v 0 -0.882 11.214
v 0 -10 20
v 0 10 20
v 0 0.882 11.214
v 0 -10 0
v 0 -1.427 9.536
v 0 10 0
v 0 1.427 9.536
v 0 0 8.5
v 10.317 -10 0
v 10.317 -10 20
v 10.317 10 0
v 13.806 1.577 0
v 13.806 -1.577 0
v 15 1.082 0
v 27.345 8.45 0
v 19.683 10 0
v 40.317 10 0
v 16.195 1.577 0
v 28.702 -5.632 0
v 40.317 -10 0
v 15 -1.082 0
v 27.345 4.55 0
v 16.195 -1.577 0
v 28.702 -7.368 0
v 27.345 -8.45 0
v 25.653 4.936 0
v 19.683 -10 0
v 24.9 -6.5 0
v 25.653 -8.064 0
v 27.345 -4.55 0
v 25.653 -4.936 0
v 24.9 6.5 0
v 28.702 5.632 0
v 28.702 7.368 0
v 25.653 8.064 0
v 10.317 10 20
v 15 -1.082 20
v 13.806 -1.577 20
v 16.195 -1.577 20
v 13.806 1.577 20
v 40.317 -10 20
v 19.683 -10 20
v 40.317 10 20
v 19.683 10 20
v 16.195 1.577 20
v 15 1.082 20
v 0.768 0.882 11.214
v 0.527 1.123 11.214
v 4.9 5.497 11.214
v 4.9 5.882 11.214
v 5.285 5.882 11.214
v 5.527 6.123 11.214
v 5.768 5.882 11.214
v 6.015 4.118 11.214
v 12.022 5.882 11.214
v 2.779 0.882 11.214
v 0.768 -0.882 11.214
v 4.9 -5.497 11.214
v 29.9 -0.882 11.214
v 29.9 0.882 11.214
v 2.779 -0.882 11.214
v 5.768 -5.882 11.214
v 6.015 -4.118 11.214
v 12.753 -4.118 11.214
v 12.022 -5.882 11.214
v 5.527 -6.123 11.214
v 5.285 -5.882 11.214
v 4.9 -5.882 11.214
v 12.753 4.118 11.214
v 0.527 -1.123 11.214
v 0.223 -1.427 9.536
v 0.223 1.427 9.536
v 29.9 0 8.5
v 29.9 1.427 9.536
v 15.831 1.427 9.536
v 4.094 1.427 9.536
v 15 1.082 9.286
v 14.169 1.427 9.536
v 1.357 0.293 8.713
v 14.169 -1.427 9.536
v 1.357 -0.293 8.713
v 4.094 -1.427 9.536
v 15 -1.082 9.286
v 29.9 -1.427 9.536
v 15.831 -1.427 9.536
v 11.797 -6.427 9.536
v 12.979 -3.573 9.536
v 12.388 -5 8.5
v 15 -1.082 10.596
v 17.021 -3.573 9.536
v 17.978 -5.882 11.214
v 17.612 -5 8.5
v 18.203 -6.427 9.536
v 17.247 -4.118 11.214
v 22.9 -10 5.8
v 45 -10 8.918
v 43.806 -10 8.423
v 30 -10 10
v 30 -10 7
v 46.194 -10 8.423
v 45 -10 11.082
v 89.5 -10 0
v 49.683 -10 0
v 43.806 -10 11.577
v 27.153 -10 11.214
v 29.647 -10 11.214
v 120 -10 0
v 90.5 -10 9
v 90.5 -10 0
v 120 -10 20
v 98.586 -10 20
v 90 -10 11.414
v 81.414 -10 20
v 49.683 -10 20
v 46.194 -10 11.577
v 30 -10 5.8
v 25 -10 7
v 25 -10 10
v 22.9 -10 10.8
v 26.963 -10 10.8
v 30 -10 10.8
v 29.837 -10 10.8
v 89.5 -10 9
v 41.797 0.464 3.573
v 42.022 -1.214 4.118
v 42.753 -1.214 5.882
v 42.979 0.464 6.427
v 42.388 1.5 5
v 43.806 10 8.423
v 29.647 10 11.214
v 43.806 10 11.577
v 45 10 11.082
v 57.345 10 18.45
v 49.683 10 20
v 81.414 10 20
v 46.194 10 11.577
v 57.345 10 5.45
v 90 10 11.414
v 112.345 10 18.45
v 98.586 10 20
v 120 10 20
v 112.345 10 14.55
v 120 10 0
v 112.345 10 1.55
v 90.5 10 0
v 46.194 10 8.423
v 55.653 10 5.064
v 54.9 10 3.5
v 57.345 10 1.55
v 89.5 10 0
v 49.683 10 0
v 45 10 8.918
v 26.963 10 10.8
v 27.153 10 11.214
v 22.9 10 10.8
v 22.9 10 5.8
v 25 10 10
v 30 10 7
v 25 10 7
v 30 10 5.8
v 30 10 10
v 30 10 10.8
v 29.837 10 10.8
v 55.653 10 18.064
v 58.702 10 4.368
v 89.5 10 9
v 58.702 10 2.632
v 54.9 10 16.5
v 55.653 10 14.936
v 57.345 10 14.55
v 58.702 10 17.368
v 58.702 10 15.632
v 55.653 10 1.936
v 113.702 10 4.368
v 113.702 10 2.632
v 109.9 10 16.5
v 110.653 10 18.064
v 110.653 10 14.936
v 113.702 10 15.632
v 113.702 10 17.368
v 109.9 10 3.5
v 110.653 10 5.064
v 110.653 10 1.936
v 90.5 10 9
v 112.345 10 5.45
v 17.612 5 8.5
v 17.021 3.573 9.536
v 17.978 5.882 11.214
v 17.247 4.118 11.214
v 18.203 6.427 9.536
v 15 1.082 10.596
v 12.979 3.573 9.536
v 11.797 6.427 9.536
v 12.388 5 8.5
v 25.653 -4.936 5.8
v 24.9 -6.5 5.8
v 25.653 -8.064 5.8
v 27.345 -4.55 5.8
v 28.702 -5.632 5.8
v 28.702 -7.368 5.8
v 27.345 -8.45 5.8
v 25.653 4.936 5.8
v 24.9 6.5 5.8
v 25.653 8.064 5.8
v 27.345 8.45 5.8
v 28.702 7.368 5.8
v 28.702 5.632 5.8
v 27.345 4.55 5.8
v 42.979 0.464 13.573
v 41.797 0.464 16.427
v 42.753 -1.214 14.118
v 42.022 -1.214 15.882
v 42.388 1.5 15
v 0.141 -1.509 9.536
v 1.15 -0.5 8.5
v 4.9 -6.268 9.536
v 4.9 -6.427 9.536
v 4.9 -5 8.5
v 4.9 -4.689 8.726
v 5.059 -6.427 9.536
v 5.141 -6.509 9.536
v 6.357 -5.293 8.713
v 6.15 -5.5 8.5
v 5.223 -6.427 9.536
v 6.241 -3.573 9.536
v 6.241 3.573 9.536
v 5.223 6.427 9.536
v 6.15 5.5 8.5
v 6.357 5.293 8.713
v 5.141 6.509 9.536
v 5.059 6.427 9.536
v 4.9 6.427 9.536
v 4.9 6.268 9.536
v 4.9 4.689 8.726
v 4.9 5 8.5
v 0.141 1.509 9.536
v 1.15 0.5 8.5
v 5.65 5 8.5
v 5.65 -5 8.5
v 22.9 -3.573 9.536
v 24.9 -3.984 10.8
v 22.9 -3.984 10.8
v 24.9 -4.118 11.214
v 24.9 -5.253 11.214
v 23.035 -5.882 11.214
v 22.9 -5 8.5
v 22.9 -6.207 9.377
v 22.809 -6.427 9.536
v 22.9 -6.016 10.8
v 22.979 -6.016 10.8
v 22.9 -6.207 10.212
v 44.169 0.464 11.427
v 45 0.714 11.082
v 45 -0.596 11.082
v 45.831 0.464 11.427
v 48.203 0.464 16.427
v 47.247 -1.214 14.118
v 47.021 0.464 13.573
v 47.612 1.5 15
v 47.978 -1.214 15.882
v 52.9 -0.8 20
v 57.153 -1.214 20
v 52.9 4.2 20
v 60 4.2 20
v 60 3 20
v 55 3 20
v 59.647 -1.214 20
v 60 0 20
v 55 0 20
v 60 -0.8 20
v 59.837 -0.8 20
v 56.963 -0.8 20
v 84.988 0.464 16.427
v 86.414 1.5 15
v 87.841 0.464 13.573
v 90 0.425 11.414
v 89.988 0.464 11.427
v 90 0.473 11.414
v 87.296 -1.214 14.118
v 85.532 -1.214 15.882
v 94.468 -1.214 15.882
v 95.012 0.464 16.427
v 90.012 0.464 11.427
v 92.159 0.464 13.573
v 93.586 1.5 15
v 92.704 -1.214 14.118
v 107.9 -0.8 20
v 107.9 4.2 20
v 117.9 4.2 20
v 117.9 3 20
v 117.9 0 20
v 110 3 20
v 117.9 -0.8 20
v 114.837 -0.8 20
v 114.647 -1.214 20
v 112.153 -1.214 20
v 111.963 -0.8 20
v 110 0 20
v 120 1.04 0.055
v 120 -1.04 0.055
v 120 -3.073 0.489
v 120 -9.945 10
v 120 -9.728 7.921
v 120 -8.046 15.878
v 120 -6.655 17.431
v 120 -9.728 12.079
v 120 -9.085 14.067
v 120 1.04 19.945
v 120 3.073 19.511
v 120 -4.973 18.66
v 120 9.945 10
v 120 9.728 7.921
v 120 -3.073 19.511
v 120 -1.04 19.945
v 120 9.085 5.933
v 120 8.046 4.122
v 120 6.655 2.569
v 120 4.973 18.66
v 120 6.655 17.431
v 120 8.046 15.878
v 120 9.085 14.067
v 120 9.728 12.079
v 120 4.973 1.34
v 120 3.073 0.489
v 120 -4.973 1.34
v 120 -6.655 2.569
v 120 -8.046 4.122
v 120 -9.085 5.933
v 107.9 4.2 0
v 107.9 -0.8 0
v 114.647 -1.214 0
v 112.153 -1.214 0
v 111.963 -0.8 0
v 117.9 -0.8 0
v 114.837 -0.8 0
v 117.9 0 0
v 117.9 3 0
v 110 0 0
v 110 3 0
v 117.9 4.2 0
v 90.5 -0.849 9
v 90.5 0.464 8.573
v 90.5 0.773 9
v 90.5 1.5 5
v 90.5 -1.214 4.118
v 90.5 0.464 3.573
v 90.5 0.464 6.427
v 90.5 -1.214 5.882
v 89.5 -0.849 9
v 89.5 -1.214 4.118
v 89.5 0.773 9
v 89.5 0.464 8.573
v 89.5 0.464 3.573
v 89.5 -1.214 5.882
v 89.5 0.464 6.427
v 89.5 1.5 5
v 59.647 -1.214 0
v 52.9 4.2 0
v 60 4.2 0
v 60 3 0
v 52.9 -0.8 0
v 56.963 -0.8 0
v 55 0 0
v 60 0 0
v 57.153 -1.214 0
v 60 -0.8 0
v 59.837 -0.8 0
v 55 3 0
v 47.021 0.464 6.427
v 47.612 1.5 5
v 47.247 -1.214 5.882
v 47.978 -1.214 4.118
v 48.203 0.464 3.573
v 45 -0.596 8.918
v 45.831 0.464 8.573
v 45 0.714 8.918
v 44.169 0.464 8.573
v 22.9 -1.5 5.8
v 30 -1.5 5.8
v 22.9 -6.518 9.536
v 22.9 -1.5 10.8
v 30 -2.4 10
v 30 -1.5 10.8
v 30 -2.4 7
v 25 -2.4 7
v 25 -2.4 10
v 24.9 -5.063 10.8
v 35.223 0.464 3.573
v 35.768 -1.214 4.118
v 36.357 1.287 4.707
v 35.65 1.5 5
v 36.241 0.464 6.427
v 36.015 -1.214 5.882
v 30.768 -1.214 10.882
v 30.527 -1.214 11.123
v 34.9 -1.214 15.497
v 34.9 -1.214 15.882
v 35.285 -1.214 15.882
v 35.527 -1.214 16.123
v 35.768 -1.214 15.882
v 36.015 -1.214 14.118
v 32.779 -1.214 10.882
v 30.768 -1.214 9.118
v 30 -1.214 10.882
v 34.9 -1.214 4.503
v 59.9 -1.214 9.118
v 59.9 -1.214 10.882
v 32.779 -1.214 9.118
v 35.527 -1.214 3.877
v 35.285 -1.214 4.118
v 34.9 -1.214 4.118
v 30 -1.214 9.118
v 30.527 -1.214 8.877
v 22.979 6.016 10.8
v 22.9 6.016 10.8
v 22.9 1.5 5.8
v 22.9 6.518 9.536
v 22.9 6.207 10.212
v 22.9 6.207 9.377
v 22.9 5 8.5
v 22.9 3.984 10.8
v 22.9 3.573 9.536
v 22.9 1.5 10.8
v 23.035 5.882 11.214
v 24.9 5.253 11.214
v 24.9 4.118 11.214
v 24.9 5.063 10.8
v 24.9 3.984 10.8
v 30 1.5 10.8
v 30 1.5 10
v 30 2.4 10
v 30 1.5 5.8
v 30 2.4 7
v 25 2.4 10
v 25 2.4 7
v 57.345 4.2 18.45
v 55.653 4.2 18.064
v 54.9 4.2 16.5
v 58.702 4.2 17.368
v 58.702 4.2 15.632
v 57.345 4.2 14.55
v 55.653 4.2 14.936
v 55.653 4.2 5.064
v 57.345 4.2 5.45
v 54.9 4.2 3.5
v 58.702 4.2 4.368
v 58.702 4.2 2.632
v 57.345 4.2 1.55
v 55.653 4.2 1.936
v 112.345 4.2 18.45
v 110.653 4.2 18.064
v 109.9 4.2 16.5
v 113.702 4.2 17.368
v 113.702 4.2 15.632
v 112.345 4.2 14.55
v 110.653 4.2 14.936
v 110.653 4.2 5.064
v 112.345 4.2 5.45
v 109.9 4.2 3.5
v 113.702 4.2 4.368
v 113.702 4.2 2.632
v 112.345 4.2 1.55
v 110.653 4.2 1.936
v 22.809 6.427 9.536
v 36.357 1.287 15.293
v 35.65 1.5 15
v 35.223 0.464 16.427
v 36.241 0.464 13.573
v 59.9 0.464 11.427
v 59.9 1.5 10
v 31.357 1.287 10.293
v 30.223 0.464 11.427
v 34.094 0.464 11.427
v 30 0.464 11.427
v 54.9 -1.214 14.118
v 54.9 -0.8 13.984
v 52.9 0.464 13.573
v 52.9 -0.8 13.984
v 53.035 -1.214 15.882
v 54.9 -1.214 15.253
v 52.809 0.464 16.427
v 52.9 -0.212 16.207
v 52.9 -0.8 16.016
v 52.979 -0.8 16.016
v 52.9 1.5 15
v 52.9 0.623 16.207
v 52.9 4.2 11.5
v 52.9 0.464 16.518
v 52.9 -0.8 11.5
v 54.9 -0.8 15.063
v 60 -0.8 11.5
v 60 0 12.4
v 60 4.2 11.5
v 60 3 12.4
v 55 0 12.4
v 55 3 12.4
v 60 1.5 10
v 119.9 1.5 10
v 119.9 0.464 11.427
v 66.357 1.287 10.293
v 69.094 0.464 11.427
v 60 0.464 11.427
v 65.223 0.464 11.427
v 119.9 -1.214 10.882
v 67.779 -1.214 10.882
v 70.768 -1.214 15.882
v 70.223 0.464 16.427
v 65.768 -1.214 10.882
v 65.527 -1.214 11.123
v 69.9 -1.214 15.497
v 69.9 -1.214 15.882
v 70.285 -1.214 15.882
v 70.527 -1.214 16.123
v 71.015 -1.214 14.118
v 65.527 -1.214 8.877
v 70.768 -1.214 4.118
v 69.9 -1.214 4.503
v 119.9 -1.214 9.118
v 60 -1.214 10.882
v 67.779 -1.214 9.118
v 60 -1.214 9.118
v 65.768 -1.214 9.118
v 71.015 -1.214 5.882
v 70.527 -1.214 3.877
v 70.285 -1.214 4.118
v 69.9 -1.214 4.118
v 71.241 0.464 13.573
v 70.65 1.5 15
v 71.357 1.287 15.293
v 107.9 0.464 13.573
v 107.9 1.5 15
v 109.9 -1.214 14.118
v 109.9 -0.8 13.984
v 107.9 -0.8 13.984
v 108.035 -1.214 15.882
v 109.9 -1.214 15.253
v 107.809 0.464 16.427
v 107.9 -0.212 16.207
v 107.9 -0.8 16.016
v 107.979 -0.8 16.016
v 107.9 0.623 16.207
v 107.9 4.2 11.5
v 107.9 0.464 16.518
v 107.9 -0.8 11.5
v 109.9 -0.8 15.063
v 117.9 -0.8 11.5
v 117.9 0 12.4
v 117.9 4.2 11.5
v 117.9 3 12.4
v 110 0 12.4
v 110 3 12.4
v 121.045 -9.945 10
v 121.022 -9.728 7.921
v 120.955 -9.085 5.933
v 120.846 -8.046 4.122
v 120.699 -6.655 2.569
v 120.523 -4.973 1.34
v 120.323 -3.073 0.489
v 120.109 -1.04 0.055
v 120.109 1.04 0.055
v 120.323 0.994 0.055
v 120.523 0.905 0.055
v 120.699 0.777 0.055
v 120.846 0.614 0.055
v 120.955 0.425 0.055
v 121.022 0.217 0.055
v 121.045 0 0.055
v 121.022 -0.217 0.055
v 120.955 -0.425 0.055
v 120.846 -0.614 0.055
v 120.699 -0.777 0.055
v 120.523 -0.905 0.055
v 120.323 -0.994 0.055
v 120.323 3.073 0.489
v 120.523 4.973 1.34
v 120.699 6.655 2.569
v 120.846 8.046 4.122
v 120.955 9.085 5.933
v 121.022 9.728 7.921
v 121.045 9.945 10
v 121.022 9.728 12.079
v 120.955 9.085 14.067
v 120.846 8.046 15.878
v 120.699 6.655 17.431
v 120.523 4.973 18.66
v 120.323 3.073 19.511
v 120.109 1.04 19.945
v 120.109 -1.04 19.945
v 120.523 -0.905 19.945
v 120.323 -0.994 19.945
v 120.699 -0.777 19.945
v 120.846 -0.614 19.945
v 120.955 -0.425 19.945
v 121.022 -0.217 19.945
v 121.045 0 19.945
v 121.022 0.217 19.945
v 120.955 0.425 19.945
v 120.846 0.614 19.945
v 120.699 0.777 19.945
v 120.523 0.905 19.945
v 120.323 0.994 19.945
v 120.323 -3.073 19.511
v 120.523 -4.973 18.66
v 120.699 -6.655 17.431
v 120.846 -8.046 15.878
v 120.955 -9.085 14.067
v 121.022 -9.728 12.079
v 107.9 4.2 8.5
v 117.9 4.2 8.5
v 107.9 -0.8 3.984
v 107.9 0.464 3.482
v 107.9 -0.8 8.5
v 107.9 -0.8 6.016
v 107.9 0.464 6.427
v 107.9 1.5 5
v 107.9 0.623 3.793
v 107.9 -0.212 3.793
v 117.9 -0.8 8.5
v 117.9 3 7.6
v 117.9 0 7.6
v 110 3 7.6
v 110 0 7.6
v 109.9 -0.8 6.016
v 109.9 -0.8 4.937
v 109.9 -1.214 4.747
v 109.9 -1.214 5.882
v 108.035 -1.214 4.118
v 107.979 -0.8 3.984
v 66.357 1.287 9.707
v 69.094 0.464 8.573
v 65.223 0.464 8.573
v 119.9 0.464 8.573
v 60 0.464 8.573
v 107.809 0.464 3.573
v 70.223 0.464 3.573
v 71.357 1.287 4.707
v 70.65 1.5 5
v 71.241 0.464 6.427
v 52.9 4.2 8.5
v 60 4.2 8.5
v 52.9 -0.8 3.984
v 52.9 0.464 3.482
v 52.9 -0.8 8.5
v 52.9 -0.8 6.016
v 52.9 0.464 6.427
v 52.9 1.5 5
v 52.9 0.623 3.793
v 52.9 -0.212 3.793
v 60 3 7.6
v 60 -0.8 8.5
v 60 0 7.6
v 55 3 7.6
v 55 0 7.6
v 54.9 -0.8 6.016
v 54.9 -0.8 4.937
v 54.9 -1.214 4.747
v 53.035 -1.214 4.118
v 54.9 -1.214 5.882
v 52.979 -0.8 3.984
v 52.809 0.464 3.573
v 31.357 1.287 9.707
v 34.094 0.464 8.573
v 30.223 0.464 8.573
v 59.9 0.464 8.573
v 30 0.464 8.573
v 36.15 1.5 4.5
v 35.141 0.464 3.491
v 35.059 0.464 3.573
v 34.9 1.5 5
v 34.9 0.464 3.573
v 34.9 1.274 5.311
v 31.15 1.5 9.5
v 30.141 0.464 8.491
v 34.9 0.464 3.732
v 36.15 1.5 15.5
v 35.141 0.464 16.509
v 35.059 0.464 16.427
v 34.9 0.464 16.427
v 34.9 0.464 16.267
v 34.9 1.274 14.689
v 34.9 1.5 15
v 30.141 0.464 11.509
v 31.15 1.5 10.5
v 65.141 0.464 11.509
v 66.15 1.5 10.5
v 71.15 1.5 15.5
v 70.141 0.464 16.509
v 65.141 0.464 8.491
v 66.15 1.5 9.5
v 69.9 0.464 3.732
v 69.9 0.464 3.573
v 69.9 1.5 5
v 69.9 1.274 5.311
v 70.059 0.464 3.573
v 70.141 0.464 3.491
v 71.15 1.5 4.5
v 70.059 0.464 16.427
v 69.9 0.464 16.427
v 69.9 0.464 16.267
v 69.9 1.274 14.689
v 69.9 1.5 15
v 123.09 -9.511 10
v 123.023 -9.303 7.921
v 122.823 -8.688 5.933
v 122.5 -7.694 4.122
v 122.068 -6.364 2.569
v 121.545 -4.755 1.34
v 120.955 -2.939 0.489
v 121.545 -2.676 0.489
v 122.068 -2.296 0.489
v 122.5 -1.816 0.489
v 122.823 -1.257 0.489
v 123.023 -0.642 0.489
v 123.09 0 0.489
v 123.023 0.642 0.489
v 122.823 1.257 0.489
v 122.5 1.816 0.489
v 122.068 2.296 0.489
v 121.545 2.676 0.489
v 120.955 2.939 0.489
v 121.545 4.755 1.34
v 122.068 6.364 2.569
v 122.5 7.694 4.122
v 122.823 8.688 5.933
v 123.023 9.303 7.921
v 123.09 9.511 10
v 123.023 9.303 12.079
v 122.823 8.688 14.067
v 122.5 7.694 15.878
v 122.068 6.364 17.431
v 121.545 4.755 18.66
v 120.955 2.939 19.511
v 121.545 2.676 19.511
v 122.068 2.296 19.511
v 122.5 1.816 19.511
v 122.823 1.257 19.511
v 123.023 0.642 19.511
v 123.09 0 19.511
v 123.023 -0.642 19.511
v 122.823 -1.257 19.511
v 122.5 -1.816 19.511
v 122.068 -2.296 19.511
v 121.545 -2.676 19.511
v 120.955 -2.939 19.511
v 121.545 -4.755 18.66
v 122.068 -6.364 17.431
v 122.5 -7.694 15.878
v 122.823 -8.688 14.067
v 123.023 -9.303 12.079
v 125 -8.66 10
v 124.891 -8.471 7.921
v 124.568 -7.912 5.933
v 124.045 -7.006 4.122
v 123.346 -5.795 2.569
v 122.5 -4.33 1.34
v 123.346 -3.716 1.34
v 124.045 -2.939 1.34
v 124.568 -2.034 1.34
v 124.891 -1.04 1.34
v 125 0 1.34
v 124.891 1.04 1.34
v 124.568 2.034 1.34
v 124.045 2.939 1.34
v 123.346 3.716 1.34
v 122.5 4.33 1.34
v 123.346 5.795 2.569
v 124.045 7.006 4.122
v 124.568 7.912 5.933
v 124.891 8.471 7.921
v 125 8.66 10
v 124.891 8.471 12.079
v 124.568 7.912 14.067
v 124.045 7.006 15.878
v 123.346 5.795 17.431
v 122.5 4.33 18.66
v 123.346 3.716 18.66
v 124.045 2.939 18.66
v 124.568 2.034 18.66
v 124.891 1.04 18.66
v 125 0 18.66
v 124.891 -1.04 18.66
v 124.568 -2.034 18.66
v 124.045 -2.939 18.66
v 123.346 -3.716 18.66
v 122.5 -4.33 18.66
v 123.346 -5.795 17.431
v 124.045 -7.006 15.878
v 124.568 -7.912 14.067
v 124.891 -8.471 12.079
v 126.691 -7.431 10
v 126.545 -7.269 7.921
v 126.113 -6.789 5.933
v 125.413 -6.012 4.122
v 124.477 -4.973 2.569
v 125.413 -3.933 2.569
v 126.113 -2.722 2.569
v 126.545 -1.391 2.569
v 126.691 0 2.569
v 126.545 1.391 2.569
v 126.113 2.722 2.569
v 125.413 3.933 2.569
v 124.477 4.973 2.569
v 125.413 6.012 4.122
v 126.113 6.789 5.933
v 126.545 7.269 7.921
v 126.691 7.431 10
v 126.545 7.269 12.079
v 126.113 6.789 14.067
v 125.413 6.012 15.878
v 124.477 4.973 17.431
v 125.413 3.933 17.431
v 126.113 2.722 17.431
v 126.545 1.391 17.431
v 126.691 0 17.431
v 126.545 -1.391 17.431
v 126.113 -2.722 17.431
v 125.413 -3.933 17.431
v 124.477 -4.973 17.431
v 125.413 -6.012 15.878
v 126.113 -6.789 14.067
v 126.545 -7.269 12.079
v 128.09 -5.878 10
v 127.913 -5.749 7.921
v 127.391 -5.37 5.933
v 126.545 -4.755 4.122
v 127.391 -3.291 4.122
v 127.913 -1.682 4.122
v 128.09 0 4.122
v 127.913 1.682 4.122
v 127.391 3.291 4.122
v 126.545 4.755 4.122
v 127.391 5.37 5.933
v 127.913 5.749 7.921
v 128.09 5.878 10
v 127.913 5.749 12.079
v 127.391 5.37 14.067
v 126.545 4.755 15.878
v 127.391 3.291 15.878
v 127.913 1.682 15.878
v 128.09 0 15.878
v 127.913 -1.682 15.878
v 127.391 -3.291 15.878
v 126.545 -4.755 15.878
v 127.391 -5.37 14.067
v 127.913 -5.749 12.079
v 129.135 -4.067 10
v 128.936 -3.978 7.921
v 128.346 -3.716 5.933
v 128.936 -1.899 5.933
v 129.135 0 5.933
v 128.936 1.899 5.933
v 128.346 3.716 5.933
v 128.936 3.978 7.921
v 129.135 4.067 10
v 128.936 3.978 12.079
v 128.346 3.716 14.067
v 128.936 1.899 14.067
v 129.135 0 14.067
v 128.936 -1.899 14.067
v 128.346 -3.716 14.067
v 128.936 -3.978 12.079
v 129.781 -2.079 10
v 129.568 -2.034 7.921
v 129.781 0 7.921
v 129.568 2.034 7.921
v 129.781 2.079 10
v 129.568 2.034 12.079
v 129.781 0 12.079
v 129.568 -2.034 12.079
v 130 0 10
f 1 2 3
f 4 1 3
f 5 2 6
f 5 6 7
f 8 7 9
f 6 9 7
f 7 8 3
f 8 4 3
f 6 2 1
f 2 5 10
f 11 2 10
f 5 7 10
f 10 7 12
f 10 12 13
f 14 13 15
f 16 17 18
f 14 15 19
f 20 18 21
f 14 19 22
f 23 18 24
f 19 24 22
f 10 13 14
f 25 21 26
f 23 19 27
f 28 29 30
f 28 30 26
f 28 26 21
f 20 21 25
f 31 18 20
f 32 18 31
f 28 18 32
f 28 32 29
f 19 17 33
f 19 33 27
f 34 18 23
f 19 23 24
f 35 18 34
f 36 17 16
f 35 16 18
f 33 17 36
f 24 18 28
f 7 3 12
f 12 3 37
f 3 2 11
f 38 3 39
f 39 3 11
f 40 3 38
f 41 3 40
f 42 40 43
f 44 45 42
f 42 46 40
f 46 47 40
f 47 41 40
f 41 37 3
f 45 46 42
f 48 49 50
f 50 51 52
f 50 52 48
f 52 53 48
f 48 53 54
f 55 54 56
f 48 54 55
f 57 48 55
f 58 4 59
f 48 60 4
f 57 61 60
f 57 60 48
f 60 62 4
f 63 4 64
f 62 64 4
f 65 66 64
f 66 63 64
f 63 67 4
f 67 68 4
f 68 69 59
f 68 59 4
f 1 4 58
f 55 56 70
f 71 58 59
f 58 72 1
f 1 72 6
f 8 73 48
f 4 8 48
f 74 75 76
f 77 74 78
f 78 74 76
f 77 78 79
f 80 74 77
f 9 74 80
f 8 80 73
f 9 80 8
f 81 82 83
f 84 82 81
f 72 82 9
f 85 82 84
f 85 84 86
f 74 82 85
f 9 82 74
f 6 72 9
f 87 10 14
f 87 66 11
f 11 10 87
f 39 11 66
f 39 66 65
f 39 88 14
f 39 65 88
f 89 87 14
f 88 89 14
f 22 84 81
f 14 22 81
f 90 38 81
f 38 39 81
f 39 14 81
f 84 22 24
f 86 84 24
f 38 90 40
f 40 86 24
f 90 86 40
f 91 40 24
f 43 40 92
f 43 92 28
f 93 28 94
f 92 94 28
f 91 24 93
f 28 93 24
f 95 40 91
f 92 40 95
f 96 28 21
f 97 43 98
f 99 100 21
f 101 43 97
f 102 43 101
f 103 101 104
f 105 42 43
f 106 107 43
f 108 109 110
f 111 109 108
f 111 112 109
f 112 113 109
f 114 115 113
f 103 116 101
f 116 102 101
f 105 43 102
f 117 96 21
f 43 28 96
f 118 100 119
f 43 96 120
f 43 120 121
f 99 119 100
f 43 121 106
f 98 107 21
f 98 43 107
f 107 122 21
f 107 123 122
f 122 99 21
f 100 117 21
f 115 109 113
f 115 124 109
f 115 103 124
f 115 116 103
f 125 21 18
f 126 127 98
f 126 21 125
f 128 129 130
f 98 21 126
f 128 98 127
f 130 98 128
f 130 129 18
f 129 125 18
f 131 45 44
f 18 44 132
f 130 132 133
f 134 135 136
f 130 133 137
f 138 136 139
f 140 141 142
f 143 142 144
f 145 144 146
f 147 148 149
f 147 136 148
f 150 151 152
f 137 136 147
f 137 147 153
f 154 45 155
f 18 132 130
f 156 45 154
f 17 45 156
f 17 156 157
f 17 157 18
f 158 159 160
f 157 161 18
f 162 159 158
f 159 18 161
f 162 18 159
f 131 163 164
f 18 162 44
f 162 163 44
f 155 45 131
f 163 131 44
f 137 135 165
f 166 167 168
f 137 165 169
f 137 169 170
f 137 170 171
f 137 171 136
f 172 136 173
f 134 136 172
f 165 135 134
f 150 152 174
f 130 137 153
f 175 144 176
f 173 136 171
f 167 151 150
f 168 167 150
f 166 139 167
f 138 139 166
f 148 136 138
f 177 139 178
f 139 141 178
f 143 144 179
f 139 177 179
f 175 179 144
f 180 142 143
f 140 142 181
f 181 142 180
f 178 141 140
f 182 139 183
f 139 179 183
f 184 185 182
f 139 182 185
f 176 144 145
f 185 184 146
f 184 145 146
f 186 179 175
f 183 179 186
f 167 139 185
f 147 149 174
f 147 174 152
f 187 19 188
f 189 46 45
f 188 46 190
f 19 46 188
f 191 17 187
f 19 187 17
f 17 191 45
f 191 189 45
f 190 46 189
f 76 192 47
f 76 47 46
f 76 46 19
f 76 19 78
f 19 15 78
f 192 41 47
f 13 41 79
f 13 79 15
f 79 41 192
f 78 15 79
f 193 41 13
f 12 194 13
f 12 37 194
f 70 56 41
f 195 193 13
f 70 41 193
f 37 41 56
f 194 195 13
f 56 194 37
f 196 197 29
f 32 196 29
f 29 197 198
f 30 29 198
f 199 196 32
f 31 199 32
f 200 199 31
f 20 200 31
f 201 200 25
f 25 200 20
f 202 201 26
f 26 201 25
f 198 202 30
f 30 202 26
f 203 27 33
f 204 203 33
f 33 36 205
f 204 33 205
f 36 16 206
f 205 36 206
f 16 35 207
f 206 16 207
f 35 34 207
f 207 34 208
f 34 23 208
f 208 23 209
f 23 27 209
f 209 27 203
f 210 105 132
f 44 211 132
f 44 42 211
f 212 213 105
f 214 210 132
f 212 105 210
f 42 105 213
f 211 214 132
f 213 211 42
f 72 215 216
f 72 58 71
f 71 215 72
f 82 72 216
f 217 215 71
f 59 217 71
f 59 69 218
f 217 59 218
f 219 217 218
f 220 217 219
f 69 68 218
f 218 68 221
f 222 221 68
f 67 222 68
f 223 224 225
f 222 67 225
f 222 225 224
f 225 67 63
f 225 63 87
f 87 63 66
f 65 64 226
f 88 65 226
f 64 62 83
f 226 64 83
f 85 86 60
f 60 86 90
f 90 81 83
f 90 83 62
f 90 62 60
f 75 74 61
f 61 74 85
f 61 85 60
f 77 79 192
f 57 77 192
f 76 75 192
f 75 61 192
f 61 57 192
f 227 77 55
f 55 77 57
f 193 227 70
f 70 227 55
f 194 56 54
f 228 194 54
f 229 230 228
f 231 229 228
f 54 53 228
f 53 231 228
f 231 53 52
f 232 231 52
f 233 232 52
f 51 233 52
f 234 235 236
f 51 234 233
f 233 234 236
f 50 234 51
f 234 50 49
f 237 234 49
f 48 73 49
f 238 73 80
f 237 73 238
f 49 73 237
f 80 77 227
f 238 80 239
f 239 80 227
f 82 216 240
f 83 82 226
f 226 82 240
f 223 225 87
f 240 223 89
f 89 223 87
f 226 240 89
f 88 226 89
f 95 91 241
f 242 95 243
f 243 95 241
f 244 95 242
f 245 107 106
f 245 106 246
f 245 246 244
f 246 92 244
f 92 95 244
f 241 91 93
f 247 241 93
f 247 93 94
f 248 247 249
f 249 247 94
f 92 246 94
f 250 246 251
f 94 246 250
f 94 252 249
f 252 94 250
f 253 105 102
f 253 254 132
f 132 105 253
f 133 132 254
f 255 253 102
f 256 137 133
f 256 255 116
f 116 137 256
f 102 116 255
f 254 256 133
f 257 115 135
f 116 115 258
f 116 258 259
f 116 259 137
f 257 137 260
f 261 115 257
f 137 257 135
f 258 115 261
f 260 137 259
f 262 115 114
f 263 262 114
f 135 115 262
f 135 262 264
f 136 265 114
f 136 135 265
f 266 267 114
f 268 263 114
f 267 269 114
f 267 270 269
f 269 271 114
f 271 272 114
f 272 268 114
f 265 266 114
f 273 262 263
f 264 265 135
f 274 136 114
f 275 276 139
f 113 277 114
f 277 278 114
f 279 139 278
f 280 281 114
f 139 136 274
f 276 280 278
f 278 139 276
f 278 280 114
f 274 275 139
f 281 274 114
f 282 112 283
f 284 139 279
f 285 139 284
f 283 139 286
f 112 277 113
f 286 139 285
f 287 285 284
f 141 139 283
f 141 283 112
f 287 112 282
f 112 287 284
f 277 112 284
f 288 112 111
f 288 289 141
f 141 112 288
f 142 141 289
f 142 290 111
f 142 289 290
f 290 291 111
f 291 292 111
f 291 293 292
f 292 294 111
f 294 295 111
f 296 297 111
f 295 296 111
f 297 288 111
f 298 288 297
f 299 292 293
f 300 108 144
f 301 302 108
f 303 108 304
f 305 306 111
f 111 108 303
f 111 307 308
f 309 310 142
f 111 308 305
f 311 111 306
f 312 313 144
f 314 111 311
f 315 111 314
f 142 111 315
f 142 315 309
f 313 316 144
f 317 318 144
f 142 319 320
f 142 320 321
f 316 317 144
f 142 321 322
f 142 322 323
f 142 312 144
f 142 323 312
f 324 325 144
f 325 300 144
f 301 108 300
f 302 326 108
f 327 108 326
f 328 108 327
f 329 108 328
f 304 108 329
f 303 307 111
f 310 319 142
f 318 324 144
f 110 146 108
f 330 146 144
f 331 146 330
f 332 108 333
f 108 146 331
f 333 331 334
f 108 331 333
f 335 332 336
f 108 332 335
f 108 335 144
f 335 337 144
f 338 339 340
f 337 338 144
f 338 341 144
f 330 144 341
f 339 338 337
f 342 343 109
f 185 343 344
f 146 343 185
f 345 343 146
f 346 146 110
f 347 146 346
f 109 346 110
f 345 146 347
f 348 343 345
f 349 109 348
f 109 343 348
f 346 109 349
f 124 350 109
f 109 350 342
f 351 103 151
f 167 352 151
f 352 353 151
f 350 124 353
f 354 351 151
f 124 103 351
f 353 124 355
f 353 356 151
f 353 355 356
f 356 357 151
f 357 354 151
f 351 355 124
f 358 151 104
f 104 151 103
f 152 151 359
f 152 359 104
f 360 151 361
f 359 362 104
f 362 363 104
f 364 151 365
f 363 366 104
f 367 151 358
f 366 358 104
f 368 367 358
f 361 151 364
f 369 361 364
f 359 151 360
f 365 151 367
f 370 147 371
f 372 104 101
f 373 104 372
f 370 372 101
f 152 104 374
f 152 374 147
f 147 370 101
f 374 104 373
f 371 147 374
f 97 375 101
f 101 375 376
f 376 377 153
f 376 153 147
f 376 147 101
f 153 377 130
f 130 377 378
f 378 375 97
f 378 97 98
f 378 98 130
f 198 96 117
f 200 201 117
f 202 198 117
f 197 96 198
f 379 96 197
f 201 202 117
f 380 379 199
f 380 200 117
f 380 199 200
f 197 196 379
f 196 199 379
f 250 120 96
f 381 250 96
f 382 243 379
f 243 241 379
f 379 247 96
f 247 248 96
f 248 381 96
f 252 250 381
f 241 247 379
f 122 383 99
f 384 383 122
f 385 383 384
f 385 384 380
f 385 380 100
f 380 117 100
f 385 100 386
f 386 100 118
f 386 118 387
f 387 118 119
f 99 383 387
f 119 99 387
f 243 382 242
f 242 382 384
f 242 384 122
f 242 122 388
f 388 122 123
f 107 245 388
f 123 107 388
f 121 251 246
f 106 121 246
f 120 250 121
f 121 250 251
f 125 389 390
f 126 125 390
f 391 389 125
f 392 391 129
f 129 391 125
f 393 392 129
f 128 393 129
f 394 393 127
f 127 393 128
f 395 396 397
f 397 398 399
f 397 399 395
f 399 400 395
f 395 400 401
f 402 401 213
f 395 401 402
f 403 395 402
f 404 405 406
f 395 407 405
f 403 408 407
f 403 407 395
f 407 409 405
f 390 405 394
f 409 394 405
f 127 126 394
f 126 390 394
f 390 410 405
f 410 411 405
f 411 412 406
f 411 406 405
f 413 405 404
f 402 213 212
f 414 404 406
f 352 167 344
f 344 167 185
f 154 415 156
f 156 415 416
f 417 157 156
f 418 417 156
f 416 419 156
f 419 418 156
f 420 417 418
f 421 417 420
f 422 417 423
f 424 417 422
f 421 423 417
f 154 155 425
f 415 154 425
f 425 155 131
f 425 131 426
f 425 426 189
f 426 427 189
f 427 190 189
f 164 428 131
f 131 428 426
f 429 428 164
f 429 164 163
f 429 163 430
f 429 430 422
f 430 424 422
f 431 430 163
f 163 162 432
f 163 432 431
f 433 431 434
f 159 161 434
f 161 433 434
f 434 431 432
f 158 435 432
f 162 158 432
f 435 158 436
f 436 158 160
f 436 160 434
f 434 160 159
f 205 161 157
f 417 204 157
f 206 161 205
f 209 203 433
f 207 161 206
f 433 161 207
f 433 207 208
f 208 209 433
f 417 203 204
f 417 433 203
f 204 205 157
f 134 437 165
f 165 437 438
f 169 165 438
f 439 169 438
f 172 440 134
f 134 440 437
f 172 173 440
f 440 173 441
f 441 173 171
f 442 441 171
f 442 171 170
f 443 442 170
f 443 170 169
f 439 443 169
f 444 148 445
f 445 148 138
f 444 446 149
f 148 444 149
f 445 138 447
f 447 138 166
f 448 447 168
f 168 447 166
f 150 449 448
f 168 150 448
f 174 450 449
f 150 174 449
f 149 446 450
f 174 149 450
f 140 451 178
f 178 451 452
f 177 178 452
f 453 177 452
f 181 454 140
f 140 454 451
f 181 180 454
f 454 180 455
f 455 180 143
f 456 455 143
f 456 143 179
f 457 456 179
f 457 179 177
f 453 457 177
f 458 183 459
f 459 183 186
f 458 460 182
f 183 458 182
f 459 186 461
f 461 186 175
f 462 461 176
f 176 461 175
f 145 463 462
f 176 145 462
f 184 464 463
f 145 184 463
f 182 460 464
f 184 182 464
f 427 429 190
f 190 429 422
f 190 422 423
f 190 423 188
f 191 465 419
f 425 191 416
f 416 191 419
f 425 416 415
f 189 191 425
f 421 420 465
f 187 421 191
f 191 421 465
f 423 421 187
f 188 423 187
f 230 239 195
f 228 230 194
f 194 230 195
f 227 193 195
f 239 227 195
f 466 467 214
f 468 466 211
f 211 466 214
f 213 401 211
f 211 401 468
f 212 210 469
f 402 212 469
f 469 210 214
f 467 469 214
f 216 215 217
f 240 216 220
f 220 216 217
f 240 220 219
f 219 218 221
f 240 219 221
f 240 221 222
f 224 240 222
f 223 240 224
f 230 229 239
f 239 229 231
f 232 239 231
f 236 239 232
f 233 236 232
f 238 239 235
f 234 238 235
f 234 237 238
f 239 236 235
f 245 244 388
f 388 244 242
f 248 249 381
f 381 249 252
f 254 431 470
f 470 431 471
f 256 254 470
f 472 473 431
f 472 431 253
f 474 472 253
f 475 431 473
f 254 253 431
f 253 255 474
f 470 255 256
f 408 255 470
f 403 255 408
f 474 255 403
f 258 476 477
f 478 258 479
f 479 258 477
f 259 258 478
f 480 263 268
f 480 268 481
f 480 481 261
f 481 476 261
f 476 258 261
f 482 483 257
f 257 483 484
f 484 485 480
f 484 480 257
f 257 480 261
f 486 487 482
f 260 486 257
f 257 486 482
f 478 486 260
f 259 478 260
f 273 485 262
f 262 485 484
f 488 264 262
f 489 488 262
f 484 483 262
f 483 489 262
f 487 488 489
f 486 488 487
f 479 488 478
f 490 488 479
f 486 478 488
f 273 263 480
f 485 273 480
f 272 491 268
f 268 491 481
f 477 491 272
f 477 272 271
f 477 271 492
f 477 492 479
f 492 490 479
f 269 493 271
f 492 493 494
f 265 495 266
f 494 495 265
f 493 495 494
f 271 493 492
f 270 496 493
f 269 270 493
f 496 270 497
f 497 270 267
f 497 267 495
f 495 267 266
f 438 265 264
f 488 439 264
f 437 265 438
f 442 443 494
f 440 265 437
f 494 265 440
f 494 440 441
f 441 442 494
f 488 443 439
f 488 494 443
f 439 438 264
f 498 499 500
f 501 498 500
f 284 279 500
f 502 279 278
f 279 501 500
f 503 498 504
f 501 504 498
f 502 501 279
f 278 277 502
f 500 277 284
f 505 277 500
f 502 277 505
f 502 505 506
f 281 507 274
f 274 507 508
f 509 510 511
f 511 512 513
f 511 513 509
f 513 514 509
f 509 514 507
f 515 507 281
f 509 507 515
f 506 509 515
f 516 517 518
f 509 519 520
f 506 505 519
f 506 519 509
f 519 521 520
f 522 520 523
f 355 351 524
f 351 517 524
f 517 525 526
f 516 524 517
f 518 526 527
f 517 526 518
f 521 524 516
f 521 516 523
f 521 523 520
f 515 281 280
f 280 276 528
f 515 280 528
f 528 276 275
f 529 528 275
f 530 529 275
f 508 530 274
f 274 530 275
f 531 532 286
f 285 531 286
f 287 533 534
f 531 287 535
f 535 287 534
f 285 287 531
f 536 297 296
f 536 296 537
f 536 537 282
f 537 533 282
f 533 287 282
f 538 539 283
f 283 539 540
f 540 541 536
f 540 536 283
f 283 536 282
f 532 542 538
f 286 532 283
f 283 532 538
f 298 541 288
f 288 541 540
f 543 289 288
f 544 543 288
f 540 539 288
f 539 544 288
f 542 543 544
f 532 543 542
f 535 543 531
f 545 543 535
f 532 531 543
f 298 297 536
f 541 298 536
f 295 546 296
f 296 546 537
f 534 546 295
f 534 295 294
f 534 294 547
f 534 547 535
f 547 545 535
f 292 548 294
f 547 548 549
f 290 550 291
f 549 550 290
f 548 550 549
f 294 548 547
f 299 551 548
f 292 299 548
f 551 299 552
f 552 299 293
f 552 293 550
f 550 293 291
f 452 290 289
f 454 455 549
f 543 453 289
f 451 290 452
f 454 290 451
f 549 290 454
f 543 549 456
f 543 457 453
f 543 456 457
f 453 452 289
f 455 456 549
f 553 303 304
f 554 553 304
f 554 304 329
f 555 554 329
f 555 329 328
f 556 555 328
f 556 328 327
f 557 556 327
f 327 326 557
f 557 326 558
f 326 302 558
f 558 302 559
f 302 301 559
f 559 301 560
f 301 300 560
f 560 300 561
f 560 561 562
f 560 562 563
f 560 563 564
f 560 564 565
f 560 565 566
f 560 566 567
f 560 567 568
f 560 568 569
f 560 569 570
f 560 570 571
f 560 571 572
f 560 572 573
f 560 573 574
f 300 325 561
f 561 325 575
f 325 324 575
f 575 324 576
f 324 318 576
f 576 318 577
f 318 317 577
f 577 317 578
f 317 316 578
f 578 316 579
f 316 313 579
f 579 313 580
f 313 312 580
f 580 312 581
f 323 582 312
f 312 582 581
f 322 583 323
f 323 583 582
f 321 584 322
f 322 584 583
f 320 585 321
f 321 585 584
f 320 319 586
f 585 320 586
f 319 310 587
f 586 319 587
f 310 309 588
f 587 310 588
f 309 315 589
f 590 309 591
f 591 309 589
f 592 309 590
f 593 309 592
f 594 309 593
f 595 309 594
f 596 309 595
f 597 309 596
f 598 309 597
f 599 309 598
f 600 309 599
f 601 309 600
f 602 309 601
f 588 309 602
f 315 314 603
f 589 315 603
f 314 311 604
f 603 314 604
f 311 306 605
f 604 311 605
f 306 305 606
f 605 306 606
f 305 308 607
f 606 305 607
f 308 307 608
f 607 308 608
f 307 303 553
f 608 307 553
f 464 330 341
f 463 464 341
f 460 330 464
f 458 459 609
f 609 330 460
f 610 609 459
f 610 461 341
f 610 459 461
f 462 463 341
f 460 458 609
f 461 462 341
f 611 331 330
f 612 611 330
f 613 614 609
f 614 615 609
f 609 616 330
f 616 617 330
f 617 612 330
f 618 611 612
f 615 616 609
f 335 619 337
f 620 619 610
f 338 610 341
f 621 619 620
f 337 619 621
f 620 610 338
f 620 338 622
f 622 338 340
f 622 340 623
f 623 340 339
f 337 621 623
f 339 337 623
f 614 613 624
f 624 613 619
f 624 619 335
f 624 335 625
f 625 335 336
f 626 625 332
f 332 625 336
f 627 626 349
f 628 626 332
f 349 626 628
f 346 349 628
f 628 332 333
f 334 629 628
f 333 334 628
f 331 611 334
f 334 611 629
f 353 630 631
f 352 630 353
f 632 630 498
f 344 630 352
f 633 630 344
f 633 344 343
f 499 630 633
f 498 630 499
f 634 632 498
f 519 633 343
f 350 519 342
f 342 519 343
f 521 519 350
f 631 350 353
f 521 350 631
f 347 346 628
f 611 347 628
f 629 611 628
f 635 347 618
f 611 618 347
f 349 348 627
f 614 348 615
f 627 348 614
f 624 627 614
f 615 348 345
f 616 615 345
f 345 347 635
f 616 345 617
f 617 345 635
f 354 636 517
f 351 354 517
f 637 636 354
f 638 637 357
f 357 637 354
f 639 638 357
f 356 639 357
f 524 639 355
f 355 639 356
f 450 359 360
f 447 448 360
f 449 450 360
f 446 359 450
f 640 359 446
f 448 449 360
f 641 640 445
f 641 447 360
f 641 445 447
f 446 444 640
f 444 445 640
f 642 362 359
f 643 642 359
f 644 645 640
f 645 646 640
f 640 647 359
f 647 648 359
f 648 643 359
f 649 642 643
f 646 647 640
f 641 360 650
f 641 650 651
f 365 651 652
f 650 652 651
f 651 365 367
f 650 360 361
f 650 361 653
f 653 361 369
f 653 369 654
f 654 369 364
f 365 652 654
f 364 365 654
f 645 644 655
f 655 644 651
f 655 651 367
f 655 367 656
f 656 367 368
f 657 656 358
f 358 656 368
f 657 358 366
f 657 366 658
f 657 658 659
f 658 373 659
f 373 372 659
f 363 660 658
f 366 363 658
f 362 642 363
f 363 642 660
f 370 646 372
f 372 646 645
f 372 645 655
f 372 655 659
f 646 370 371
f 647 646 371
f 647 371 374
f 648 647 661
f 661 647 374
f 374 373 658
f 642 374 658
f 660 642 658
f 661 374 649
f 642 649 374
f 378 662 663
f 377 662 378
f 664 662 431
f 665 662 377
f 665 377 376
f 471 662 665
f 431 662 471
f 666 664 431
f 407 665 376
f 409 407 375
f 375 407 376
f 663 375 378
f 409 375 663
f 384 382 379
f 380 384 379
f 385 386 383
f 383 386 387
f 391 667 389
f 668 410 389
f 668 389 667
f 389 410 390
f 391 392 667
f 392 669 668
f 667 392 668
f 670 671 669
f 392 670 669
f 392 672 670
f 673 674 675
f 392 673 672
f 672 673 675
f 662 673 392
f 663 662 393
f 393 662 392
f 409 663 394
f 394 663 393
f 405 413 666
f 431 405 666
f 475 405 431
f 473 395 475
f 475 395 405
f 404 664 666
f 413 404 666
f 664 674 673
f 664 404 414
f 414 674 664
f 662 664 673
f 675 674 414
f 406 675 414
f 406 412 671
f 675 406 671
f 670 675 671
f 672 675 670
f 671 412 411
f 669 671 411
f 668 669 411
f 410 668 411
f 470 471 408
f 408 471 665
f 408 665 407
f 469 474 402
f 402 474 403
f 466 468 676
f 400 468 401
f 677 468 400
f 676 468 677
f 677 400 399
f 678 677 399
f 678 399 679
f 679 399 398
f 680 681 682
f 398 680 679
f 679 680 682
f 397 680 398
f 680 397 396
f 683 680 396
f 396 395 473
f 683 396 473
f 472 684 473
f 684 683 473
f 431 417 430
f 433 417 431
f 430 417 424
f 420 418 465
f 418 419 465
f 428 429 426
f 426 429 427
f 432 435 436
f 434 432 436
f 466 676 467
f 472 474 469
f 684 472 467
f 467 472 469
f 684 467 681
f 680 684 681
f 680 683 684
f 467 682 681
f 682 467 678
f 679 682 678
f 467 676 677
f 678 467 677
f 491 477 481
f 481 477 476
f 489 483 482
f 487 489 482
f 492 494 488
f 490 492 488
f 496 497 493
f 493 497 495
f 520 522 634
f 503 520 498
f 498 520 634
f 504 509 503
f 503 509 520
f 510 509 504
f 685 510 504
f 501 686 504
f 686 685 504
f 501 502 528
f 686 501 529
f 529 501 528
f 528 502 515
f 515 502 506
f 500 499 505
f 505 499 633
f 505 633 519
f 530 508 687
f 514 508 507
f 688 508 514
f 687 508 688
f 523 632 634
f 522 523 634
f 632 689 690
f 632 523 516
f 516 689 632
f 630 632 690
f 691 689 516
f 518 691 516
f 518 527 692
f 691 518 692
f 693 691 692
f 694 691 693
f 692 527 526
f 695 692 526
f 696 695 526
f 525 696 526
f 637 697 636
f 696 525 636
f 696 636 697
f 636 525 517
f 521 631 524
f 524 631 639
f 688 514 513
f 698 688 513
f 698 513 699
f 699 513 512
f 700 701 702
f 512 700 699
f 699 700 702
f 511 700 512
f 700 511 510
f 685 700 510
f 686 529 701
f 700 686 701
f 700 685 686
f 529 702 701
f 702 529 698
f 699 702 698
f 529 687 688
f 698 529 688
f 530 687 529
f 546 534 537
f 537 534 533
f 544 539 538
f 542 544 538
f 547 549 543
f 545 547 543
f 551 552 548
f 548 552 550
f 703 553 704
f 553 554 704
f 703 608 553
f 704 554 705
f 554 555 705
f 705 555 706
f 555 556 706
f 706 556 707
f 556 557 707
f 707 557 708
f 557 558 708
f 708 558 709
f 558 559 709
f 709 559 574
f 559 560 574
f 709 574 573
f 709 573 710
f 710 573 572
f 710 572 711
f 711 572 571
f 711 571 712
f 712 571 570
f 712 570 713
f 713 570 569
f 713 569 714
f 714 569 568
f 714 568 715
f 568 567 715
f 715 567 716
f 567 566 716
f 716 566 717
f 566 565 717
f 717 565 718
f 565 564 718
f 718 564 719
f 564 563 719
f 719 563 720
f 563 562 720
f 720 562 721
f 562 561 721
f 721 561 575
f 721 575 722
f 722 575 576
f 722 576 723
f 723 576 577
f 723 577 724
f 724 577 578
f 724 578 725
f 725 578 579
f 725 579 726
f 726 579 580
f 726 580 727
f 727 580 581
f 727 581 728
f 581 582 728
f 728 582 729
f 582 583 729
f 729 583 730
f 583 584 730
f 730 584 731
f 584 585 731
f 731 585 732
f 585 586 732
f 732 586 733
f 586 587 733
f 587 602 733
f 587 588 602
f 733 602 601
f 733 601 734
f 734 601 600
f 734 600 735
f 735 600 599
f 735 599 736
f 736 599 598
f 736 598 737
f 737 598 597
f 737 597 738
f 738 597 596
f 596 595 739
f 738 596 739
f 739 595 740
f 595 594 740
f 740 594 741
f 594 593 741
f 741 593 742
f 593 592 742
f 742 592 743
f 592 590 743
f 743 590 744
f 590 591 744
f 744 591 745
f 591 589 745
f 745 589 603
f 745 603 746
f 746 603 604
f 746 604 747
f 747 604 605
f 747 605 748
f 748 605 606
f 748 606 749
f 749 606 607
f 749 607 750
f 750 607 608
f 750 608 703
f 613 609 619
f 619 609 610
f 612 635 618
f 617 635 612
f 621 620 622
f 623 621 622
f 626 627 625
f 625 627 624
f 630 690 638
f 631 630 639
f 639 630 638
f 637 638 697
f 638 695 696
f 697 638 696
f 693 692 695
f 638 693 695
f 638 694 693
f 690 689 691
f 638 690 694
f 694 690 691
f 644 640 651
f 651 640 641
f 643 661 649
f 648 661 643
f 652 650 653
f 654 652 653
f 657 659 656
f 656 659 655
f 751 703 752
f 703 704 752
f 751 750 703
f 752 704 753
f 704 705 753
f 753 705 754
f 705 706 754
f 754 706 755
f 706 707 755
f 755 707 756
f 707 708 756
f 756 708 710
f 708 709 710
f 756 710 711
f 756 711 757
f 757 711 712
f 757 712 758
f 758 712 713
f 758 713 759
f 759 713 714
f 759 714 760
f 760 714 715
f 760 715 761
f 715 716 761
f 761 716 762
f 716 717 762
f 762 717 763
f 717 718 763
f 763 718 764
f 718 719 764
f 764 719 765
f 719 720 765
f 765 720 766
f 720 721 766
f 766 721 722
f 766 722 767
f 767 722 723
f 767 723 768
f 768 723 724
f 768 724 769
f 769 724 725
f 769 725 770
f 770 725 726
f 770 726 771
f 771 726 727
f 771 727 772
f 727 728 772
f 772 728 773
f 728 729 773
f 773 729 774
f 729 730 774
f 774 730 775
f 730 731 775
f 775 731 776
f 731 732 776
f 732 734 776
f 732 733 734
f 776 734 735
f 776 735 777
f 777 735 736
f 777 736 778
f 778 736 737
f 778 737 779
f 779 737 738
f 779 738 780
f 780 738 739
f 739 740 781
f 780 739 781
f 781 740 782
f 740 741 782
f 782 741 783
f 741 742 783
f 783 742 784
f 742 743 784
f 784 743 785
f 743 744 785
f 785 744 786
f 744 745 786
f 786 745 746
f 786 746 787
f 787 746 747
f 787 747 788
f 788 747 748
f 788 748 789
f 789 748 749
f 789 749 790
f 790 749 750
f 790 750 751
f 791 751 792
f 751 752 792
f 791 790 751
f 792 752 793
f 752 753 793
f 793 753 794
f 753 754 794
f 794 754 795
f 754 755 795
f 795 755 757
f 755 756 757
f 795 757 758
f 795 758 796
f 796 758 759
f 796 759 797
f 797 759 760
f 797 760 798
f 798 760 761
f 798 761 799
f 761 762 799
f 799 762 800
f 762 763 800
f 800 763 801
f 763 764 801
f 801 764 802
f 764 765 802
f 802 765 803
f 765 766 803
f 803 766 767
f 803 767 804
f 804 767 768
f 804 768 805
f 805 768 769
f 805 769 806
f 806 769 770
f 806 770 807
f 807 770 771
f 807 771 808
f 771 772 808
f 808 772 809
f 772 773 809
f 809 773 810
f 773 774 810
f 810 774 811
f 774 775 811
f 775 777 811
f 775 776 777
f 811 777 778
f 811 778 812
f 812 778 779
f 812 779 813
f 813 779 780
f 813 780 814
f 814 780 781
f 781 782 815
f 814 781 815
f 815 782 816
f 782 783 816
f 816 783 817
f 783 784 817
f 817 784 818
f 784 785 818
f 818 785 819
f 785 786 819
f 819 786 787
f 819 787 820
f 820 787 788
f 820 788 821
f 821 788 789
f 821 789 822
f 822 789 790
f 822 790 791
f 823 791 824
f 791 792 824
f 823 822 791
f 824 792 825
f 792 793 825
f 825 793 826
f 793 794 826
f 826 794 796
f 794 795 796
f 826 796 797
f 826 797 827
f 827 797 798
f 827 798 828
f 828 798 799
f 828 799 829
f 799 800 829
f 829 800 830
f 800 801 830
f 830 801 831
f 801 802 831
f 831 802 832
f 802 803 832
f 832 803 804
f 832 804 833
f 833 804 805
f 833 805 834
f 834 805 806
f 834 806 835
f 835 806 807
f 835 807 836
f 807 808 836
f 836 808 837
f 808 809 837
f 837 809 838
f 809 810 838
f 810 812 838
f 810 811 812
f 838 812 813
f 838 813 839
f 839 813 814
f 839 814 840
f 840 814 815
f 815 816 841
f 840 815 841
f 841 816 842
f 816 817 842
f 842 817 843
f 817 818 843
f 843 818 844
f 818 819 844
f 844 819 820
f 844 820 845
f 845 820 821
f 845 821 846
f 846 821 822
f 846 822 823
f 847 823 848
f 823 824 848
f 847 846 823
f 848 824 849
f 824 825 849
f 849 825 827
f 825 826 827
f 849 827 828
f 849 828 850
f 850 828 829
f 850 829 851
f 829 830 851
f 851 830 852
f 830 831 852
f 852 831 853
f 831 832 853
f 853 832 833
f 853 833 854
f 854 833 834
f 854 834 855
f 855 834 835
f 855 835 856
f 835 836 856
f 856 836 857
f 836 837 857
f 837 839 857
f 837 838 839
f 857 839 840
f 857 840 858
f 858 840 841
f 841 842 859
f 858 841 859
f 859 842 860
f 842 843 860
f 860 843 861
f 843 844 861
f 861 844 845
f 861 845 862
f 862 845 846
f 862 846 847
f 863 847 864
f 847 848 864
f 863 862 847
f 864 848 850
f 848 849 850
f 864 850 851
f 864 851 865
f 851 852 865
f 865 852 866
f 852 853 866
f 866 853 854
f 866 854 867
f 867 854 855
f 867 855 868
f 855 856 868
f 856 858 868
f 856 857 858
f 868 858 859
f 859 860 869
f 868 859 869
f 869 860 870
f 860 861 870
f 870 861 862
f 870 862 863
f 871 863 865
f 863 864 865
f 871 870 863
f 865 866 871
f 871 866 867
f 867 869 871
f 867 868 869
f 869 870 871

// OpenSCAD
cableDiameter=3;

linkLength = 60;
linkThickness=linkLength/3;
linkWidth=linkLength/3;
cablePullRadius=5;

function HiLoScrewDiameter(3dPrinterTolerance=.4)= 3.6+3dPrinterTolerance;  
function HiLoScrewLength(3dPrinterTolerance=.4)= linkWidth+3dPrinterTolerance;
function HiLoScrewHeadDiameter(3dPrinterTolerance=.4)= 6.7+3dPrinterTolerance;
function HiLoScrewHeadHeight(3dPrinterTolerance=.4)= 2.5+3dPrinterTolerance;

//err on the side of smaller tolerances for screws

module HiLoScrew(3dPrinterTolerance=.4)
{
	union()
	{
		translate([0,0,-HiLoScrewLength(3dPrinterTolerance)])
		{
			cylinder(HiLoScrewLength(3dPrinterTolerance), HiLoScrewDiameter(3dPrinterTolerance)/2, HiLoScrewDiameter(3dPrinterTolerance)/2);
		}
		cylinder(HiLoScrewHeadHeight(3dPrinterTolerance), HiLoScrewHeadDiameter(3dPrinterTolerance)/2,HiLoScrewHeadDiameter(3dPrinterTolerance)/2);
	}
}



module knotchHalf(orentation, negative)
{
	intersection(){
		rotate([0,0,orentation/2])
			children(0);
		
		mirror([1,0,0])
			rotate([0,0,orentation/2])
				children(0);
		
	}
	intersection(){
		rotate([0,0,negative/2])
			mirror([0,1,0])
				children(0);
		
		mirror([1,0,0])
			rotate([0,0,negative/2])
				mirror([0,1,0])
					children(0);
		
	}
	
}

module guideTubes(cablePullRadius=5,linkLength=50){
	tubSectionLen = linkLength/1.5;
	innerSectionLen = cablePullRadius* sqrt(2);
	difference(){
		union(){
			translate([0,cablePullRadius,0]){
				cylinder(h=tubSectionLen,d=cableDiameter,center=true);
			}
			translate([0,cablePullRadius,tubSectionLen/2-cableDiameter/2]){
				rotate([-45,0,0])
					translate([0,0,tubSectionLen/2])
						cylinder(h=tubSectionLen,d=cableDiameter,center=true);
			}
			
			translate([0,cablePullRadius,-(tubSectionLen/2-cableDiameter/4)]){
				rotate([-45,0,0])
					translate([0,0,-innerSectionLen/2.5])
						cylinder(h=innerSectionLen,d=cableDiameter,center=true);
			}
			//tab for screw holes
			translate([cableDiameter/3-1.8,cablePullRadius/2-1,tubSectionLen/2-2]){
				
				// void for flap
				cube([cablePullRadius,cablePullRadius*2,cablePullRadius*2]);
				translate([HiLoScrewLength()+cablePullRadius-1,cablePullRadius,4])
				rotate([0,90,0])
					#HiLoScrew();
			}
			
		}
		translate([cableDiameter/3-2,cablePullRadius/2,tubSectionLen/2-2]){
			//flap
			translate([1,-.1,2.1])
				cube([cablePullRadius-2,cablePullRadius*2-2,cablePullRadius*2-2]);
		}
		
	}
}

module knotch(orentation, negative){
	
	knotchHalf(orentation, negative){
		children(0);
	}
	
	mirror([0,0,1])
			knotchHalf(orentation, negative){
				translate([0,0,-.1])
					children(0);
			}
			
}


module cableLink(input=[0,-45,45,25,10,15],cablePullRadius=5,linkThickness,linkWidth){
	echo(input);
	linkLength= input[3];
	inOrentation =  input[0];
	inNeg=input[1];
	inPos=input[2];
	translate([0,0,linkThickness/2])
	difference(){
		cube([linkLength,linkWidth,linkThickness],center=true);// finger joint brick
		union(){// all the cut outs
			rotate([inOrentation,0,0]){	// rotate the joint to the specified orentation	
				knotch(inPos,inNeg){// hinge section
					translate([-.5,1,0])
						cube([linkLength*1.1,linkWidth*1.1,linkThickness*1.1]);// hinge cutter, this could be more elegant...
					
				}
				translate([-.1,0,0])
				rotate([0,90,0]){
					
					cylinder(h=linkLength,d=cableDiameter,center=true);// center tube
					
					// string lines
					guideTubes(cablePullRadius=cablePullRadius,linkLength = linkLength  );
					mirror([0,1,0])
						guideTubes(cablePullRadius=cablePullRadius,linkLength = linkLength  );
				}
				
			}
			
		}
	}
	
}

module basicLeg(input, depth=0,cablePullRadius=5,linkThickness,linkWidth){
	echo("Link #",depth);
	translate([input[depth][3]/2,0,0]){
		if(depth ==1){
			color("blue"){
				cableLink(input[depth],cablePullRadius=cablePullRadius,
		                  linkThickness=linkThickness,
		                  linkWidth=linkWidth);
			}
		}else{
			color("green"){
				cableLink(input[depth],cablePullRadius=cablePullRadius,
		                  linkThickness=linkThickness,
		                  linkWidth=linkWidth);
			}
		}
		if(depth < (len(input)-1)){
			translate([input[depth][3]/2,0,0])
				basicLeg(	input, 
							depth+1,// increment the depth to walk down the list
							cablePullRadius=cablePullRadius,
							linkThickness=linkThickness,
							linkWidth=linkWidth);
		}else{
			translate([0,0,linkThickness/2])
				difference(){
					translate([input[depth][3]/2,0,0])
						sphere(linkThickness/2);
					cube([linkLength,linkWidth,linkThickness],center=true);
				}
		}
	}
	
}


basicLeg(input = [ [0,-45,45,linkLength/2],
                   [90,-45,45,linkLength/2],
                   [90,0,90,linkLength]
                  ],
                  cablePullRadius=cablePullRadius,
                  linkThickness=linkThickness,
                  linkWidth=linkWidth);
